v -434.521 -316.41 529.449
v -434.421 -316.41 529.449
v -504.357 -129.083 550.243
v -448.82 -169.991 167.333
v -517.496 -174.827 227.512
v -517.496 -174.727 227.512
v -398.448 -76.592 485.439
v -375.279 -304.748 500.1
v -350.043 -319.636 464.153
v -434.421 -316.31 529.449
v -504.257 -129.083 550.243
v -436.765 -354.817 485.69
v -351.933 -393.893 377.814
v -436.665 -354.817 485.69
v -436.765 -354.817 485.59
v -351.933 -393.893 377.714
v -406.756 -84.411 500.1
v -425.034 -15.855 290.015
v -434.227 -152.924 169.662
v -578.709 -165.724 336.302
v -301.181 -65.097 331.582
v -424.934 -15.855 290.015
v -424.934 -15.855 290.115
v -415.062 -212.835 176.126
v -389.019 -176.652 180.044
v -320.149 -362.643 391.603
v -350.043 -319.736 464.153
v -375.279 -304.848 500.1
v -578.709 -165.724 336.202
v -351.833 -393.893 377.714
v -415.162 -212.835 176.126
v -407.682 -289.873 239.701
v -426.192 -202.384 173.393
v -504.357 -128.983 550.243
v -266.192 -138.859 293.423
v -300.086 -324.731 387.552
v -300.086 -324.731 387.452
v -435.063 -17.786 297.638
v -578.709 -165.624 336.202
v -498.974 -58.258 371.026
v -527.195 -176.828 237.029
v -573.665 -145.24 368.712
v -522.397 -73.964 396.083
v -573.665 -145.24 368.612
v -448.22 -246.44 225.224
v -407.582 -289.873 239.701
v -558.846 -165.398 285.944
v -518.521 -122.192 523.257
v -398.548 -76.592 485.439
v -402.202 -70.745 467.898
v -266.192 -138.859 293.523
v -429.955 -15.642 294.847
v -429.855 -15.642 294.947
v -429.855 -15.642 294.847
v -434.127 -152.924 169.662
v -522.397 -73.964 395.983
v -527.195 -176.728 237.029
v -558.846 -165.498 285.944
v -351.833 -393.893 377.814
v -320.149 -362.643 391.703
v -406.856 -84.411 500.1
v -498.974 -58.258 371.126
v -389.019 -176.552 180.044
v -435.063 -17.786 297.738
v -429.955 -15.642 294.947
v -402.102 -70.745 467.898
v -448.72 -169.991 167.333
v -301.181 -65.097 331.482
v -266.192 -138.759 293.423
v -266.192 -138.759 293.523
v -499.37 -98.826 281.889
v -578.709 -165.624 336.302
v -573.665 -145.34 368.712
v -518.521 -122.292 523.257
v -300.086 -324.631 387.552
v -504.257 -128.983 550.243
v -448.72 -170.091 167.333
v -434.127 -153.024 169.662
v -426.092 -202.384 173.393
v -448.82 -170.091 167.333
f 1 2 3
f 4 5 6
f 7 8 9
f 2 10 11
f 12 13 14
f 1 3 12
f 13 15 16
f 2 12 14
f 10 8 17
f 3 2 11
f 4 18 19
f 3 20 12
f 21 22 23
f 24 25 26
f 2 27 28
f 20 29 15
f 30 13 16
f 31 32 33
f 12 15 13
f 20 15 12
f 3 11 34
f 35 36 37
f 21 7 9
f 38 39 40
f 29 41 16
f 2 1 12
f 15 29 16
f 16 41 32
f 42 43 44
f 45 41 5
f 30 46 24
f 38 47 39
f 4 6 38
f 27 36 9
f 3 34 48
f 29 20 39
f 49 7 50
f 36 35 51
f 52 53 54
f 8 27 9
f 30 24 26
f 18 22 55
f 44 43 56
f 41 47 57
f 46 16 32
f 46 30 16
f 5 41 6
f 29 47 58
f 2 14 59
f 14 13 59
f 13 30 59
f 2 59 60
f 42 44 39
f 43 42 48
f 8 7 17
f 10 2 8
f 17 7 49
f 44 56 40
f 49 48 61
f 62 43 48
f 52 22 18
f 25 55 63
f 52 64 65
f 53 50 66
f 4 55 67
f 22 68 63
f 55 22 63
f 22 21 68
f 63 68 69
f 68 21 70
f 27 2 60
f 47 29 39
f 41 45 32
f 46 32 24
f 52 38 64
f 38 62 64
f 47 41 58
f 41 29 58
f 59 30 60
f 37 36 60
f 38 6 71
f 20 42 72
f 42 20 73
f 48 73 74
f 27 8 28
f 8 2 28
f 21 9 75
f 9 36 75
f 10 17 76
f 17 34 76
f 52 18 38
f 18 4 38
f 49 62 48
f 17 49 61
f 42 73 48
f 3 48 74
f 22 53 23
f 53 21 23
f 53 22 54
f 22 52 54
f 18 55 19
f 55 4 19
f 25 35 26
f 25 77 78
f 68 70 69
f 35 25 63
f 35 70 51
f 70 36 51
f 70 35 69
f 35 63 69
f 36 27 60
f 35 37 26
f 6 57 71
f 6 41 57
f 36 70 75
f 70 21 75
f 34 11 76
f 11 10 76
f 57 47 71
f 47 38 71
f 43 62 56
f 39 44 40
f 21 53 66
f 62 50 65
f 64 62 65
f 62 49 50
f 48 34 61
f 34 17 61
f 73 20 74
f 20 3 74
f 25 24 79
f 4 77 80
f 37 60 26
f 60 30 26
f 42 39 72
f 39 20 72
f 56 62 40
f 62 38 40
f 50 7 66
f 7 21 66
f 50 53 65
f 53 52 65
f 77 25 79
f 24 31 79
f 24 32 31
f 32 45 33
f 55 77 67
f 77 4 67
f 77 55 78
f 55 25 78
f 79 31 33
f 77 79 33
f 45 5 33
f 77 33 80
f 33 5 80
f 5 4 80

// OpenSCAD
hull(){ translate([-434.520586576,-316.410039481,529.34856176])cube(0.1,0.1,0.1);
translate([-375.378787879,-304.848484848,500.0])cube(0.1,0.1,0.1);
translate([-350.143171806,-319.735682819,464.052863436])cube(0.1,0.1,0.1);
translate([-320.248901903,-362.642752562,391.603221083])cube(0.1,0.1,0.1);
translate([-300.186308492,-324.731369151,387.452339688])cube(0.1,0.1,0.1);
translate([-504.35664702,-129.083038638,550.143418468])cube(0.1,0.1,0.1);
translate([-406.855555556,-84.5111111111,500.0])cube(0.1,0.1,0.1);
translate([-266.291946309,-138.859060403,293.422818792])cube(0.1,0.1,0.1);
translate([-518.521164197,-122.292178882,523.157352648])cube(0.1,0.1,0.1);
translate([-573.665337364,-145.33961536,368.612272464])cube(0.1,0.1,0.1);
translate([-522.396669931,-74.0636630754,395.983349657])cube(0.1,0.1,0.1);
translate([-498.973880597,-58.3582089552,371.026119403])cube(0.1,0.1,0.1);
translate([-398.547758285,-76.6920077973,485.339181287])cube(0.1,0.1,0.1);
translate([-402.202216066,-70.8448753463,467.797783934])cube(0.1,0.1,0.1);
translate([-415.16163222,-212.835188129,176.126126126])cube(0.1,0.1,0.1);
translate([-301.281471917,-65.1969012266,331.481601033])cube(0.1,0.1,0.1);
translate([-435.063114634,-17.8856597681,297.637604579])cube(0.1,0.1,0.1);
translate([-434.227208976,-153.023842917,169.661991585])cube(0.1,0.1,0.1);
translate([-389.118942731,-176.651982379,180.044052863])cube(0.1,0.1,0.1);
translate([-429.954742599,-15.7420328116,294.84725627])cube(0.1,0.1,0.1);
translate([-425.03358209,-15.9552238806,290.014925373])cube(0.1,0.1,0.1);
translate([-499.37037037,-98.9259259259,281.888888889])cube(0.1,0.1,0.1);
translate([-448.819829674,-170.091022736,167.332994765])cube(0.1,0.1,0.1);
translate([-426.191889219,-202.383778437,173.392680514])cube(0.1,0.1,0.1);
translate([-517.496075353,-174.827315542,227.51177394])cube(0.1,0.1,0.1);
translate([-351.933169332,-393.89298893,377.714227142])cube(0.1,0.1,0.1);
translate([-436.76459439,-354.817096285,485.590409401])cube(0.1,0.1,0.1);
translate([-407.682186235,-289.873481781,239.701417004])cube(0.1,0.1,0.1);
translate([-448.220035778,-246.440071556,225.223613596])cube(0.1,0.1,0.1);
translate([-578.708523097,-165.72396049,336.201869048])cube(0.1,0.1,0.1);
translate([-558.846153846,-165.498251748,285.944055944])cube(0.1,0.1,0.1);
translate([-527.195367573,-176.827794562,237.029204431])cube(0.1,0.1,0.1); }
